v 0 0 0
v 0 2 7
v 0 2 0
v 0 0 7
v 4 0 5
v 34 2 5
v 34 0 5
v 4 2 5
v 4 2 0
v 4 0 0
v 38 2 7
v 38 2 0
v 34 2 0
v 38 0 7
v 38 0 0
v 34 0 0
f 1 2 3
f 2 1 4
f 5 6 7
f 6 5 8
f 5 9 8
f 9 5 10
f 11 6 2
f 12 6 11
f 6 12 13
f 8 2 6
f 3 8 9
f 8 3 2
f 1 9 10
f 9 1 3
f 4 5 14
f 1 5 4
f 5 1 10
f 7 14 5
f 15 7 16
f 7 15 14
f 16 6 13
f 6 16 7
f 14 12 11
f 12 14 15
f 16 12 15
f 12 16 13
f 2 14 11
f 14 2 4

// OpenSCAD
cube([4,2,5]);
translate([34,0,0]) cube([4,2,5]);

translate([0,0,5]) cube([38,2,2]);
